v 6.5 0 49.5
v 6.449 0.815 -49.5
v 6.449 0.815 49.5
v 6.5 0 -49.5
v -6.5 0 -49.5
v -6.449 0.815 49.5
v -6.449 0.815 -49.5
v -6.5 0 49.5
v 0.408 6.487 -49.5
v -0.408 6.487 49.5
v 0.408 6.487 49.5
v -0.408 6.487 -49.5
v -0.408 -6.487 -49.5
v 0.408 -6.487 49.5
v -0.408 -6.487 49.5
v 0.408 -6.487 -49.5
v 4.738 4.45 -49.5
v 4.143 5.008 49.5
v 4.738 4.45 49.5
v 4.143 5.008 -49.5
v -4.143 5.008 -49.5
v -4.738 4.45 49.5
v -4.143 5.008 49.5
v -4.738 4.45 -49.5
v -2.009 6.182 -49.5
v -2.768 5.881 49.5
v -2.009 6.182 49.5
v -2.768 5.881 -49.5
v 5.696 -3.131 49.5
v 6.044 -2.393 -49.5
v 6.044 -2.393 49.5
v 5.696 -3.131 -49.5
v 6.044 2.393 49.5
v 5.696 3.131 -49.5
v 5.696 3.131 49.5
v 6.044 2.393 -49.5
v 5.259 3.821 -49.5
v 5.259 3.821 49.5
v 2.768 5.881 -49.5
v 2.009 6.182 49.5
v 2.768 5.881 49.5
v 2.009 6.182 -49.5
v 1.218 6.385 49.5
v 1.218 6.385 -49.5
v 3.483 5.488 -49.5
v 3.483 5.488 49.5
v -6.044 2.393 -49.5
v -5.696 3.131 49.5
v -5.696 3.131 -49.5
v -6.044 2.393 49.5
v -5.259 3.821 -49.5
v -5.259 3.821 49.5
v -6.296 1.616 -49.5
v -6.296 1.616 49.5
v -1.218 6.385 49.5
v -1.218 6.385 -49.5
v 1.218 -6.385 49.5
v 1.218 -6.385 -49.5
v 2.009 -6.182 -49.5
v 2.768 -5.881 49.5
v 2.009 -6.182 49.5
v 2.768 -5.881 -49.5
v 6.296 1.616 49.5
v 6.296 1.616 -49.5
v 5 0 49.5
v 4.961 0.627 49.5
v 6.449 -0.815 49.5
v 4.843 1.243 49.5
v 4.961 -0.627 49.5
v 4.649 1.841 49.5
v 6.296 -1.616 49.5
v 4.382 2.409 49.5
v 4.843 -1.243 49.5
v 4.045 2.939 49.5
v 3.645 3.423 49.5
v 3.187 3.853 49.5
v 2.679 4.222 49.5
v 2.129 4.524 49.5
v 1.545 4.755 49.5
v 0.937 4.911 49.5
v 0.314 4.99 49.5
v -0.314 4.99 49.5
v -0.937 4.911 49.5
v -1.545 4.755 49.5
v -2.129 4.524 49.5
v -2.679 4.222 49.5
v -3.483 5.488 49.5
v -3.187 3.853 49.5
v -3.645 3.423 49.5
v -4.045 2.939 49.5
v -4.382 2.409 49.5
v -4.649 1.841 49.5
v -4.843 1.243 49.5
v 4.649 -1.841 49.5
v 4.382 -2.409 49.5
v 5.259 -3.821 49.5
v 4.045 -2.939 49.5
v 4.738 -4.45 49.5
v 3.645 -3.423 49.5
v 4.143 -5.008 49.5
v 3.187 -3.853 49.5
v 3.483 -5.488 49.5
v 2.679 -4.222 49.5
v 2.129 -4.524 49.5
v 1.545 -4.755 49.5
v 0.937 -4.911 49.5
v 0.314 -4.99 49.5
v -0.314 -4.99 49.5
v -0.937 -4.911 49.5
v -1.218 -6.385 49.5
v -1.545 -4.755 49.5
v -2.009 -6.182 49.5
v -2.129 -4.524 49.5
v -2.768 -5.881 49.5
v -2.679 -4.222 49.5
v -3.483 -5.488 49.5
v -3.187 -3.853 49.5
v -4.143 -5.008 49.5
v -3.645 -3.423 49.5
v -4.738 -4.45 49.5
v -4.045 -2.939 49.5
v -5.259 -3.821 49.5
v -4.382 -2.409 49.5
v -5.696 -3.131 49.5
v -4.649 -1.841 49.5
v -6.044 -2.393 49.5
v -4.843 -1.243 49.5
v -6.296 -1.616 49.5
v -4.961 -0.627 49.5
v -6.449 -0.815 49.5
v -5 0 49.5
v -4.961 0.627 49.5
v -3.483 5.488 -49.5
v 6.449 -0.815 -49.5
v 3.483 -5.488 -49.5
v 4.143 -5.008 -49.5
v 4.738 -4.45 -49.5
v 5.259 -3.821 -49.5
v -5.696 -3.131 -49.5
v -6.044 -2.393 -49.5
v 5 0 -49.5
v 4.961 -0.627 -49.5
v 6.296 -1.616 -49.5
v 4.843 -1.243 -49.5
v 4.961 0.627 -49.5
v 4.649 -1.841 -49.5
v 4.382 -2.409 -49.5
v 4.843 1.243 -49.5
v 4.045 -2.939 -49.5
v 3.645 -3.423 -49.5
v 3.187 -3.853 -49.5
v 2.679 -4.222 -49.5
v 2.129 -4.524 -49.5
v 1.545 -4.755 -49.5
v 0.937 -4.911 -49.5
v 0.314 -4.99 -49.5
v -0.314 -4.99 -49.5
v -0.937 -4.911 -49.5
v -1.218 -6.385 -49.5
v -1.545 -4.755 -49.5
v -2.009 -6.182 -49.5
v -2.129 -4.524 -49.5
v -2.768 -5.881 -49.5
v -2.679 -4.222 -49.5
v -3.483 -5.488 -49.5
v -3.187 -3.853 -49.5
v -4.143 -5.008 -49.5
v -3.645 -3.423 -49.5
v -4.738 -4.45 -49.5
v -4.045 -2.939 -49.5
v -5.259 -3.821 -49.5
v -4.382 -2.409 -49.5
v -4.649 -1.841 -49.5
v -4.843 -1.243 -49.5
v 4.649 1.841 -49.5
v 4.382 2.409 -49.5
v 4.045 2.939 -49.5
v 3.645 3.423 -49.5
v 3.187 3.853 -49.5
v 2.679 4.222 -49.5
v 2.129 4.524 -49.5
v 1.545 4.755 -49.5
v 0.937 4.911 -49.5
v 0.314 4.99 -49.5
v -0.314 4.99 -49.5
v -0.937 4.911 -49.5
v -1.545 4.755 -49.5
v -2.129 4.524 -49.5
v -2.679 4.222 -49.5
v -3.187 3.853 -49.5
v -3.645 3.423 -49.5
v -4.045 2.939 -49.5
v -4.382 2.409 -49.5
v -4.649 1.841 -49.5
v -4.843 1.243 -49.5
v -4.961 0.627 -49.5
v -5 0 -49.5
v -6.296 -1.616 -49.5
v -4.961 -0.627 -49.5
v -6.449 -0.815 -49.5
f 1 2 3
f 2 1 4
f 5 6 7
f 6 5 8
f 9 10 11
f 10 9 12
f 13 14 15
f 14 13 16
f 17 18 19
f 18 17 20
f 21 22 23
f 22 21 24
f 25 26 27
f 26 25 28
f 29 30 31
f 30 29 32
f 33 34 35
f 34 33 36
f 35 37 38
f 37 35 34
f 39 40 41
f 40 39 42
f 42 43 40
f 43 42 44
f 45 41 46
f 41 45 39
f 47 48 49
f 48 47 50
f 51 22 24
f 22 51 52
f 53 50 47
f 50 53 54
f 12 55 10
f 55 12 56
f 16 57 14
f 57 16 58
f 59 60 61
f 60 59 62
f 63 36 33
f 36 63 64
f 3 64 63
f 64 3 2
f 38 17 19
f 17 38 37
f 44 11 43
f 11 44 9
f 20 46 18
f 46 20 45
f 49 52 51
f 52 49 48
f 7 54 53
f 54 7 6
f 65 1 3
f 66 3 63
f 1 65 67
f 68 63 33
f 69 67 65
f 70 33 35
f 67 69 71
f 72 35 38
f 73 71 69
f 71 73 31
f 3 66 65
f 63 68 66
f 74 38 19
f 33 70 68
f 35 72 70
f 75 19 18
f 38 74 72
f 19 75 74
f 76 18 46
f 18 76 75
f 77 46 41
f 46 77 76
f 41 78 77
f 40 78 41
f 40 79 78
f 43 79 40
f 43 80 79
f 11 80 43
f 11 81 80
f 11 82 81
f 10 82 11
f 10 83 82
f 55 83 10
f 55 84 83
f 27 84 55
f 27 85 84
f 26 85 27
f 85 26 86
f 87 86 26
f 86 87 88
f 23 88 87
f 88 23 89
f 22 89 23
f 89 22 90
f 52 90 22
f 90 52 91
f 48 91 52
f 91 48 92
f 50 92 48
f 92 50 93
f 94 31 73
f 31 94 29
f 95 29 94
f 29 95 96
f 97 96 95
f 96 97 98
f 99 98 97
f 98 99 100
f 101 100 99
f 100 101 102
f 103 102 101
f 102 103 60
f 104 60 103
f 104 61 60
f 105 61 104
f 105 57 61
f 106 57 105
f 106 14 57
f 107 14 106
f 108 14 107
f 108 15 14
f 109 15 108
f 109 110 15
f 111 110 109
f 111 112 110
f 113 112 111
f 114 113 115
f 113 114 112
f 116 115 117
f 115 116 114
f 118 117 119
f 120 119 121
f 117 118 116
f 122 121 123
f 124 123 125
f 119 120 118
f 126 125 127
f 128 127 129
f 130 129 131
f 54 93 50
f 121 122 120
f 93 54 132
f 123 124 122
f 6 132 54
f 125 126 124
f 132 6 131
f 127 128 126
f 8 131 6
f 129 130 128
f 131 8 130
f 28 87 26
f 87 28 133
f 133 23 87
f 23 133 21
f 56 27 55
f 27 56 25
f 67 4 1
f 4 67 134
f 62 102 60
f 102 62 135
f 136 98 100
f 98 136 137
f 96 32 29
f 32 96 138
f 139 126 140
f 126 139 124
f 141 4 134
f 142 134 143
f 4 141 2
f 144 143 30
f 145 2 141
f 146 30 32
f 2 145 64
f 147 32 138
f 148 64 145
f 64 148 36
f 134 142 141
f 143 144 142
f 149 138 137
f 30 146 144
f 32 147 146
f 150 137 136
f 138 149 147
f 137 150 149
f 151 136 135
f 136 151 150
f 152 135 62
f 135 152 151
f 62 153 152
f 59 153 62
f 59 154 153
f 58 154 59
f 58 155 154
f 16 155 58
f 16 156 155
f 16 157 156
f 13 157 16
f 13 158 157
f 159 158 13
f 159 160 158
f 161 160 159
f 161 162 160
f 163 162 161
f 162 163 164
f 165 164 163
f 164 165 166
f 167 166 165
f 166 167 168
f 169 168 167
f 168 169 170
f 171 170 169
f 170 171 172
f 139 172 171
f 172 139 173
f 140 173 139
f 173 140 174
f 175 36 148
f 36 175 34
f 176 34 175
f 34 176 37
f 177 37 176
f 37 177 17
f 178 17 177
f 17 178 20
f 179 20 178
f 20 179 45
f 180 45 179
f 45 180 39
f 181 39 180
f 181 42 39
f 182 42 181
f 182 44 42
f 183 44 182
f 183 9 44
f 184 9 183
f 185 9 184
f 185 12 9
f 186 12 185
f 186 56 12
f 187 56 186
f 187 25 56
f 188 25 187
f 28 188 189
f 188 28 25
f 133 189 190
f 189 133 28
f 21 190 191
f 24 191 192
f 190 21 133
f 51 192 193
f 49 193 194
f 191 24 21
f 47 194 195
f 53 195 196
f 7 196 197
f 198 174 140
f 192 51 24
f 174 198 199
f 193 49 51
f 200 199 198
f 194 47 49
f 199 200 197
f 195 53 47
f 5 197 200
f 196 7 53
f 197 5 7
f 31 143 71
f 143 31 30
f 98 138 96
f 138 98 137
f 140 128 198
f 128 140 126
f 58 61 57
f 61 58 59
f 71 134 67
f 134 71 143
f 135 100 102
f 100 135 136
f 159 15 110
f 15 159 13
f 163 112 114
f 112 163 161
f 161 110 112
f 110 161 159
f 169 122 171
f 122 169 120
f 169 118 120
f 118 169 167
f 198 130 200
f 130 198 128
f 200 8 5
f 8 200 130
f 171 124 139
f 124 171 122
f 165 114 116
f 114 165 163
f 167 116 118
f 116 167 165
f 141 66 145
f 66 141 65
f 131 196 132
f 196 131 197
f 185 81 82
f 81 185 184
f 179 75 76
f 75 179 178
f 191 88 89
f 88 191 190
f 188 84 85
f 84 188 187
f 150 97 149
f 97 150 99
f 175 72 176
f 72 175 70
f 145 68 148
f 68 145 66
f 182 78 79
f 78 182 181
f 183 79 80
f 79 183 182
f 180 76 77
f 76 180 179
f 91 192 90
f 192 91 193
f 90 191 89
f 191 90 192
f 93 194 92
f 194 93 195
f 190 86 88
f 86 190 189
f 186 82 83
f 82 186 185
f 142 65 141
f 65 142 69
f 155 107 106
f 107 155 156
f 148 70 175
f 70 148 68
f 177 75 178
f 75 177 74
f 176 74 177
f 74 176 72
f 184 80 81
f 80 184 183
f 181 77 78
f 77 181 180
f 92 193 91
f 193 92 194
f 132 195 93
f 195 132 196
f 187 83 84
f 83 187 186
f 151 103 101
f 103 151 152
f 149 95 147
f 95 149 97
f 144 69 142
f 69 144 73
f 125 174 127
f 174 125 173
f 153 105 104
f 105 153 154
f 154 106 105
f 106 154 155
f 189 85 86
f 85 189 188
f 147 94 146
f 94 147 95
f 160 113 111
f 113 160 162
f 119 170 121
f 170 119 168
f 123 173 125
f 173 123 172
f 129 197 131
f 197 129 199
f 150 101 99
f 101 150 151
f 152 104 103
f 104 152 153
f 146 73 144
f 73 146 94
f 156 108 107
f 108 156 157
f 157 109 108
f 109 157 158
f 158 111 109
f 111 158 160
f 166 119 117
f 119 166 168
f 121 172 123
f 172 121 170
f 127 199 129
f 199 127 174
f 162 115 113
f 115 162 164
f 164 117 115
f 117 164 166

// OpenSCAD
$fn = 50;


difference() {
	union() {
		translate(v = [0, 0, -49.5000000000]) {
			cylinder(h = 99, r = 6.5000000000);
		}
	}
	union() {
		translate(v = [0, 0, -100.0000000000]) {
			cylinder(h = 200, r = 5.0000000000);
		}
	}
}
